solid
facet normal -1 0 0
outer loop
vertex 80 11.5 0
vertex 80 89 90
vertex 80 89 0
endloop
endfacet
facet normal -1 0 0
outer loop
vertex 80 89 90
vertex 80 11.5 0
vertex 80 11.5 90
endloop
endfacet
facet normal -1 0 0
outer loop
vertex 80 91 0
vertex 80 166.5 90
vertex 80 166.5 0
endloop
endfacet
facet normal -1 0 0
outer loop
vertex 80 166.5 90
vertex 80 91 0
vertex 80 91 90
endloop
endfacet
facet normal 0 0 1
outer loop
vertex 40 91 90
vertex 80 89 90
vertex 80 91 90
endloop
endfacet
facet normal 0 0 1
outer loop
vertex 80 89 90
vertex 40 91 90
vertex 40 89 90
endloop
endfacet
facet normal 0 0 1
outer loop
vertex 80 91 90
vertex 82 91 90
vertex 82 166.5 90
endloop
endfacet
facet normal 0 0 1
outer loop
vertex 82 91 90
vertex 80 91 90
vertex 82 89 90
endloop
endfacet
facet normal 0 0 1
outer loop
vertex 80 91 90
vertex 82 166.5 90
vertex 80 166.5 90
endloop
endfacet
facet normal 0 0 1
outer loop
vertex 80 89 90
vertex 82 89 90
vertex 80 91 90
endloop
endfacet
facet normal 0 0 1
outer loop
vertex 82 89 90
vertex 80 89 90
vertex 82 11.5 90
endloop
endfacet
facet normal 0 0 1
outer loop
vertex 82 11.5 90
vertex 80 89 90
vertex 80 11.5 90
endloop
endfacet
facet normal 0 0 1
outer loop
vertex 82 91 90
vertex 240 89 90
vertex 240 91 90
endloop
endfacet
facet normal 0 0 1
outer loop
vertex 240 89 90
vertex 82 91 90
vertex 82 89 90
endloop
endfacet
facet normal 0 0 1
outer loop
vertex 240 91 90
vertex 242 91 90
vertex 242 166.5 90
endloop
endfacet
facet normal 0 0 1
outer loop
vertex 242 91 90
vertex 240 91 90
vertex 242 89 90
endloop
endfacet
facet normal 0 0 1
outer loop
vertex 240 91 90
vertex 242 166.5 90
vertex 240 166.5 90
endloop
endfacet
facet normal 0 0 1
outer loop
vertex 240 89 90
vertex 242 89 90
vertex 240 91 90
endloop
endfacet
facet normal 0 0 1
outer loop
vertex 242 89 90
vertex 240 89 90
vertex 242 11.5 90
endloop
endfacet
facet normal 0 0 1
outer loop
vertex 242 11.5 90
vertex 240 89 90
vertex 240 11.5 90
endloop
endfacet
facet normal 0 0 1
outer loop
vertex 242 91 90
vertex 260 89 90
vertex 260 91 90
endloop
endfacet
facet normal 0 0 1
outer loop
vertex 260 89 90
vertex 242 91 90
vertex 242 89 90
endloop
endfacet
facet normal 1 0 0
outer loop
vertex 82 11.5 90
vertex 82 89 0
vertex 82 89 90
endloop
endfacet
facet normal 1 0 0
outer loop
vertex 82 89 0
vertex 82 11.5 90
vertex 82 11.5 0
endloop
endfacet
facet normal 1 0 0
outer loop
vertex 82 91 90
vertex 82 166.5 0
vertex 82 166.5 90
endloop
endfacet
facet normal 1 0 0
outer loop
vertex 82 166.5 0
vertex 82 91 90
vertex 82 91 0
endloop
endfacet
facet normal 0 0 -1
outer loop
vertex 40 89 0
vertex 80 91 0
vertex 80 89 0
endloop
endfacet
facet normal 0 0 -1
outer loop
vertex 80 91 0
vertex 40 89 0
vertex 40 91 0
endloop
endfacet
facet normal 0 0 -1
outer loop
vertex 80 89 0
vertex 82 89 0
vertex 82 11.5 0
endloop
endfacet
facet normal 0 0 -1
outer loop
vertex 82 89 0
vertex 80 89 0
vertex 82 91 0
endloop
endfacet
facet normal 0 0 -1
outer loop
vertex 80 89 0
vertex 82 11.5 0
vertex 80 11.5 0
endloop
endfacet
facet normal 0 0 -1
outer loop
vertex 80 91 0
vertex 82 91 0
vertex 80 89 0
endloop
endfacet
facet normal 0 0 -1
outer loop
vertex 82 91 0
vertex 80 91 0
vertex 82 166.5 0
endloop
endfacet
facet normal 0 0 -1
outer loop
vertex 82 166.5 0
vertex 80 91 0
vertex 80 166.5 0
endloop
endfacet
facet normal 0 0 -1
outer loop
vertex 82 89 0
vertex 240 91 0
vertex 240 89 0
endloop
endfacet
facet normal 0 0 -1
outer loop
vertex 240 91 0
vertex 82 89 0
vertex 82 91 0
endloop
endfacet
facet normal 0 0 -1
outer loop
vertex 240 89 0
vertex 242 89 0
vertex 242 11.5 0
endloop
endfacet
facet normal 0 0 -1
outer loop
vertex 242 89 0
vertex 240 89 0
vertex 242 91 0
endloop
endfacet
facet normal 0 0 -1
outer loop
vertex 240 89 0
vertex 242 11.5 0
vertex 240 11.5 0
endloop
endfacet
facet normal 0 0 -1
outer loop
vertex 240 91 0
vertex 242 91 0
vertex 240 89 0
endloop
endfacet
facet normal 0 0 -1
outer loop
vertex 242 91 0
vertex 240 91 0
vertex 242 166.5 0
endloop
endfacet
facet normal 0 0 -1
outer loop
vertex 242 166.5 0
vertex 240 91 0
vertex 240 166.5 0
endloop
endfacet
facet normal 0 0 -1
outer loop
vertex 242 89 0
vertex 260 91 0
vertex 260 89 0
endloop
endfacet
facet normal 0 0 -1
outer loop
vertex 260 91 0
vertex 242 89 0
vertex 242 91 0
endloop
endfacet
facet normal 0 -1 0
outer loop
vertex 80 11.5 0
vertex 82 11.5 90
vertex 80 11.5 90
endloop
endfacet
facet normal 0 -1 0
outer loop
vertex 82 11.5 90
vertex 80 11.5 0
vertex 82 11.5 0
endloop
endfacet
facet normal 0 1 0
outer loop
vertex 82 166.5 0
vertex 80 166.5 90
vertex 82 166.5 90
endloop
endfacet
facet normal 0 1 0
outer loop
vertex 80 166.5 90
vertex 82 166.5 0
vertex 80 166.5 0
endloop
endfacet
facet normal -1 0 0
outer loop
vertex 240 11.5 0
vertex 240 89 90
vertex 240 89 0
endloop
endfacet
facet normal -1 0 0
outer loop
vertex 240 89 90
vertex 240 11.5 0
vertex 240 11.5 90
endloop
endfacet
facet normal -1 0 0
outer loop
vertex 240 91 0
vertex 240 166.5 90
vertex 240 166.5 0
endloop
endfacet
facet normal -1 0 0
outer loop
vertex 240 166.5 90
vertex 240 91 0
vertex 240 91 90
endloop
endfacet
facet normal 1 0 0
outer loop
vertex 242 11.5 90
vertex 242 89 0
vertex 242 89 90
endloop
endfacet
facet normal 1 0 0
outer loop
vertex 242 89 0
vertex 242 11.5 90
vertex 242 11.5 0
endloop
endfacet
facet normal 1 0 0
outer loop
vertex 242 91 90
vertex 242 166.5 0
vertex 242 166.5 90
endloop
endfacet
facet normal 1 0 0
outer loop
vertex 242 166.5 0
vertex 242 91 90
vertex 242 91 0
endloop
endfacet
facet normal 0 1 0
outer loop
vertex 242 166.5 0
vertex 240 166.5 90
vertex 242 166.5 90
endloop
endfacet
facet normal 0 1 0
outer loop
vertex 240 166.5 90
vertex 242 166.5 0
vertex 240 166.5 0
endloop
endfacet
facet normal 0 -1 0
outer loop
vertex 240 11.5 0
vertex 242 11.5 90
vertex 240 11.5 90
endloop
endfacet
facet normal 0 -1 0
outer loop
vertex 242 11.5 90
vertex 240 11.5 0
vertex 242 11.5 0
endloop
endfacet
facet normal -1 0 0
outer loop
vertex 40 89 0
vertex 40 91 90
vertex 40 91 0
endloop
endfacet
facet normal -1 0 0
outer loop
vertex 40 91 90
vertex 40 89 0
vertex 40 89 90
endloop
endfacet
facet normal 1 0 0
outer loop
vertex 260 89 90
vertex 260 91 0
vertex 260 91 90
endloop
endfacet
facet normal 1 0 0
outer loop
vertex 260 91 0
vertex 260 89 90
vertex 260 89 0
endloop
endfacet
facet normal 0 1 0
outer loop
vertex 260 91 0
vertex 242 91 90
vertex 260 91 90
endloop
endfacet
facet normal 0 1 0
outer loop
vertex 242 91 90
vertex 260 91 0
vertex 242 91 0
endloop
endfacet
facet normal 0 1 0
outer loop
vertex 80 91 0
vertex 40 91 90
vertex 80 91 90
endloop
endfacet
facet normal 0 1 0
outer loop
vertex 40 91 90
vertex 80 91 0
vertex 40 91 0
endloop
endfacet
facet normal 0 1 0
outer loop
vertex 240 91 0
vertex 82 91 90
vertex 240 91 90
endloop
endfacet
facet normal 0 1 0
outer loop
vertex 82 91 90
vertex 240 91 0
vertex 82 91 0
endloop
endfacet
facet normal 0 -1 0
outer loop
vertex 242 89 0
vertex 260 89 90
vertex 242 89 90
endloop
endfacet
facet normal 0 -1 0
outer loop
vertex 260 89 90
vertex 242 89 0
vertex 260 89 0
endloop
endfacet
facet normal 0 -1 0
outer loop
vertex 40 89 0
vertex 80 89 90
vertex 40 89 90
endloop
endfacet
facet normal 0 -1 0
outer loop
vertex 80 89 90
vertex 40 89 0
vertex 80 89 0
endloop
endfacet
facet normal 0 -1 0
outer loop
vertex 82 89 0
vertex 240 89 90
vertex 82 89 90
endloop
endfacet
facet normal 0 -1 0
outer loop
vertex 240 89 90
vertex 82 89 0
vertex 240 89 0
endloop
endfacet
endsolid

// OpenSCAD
// file: ../common/library_line.scad
// 라이브러리, 검증된 것만 이곳에
include	<constants.scad>

module line_type_1(start, end, r1, r2) {
	r22 = is_undef(r2) ? r1 : r2;
    hull() {
        translate(start) sphere(r1, $fn = FN);
        translate(end) sphere(r22, $fn = FN);
    }

	dx = end.x - start.x;
	dy = end.y - start.y;
	dz = end.z - start.z;
	rx = dy == 0 ? 0 : atan(dz / dy);
	ry = dz == 0 ? 0 : 90 + atan(dx / dz);
	rz = dx == 0 ? 0 : atan(dy / dx);
	d = sqrt(dx * dx + dy * dy + dz * dz);
	fs = max(0.5, min(d / 32, 20));
	translate([(start.x + end.x) / 2 + max(r1, r22), (start.y + end.y) / 2 + max(r1, r22), (start.z + end.z) / 2 + max(r1, r22)])
		rotate([rx, ry, rz])
		linear_extrude(EPSILON, center = true)	text(str(d, " mm"), size = fs, halign = "center", language = "kr", font = "NanumGothic");
}
// file: ../common/library_cube.scad
// 라이브러리, 검증된 것만 이곳에
include	<constants.scad>
use <library_text.scad>
use <library_line.scad>

//	튜브형태의 네모 박스, 사방 벽면만 있는 형태
//	size: 외경
module box_type_1(size, thick) {
	cube([size[0], thick, size[2]]);	//	앞
	translate([0, size[1] - thick, 0])	cube([size[0], thick, size[2]]);	//	뒤

	translate([0, 0, 0])	cube([thick, size[1], size[2]]);	//	왼쪽
	translate([size[0] - thick, 0, 0])	cube([thick, size[1], size[2]]);	//	오른쪽
}

// 끝에 반구가 더달린 실린더형태의 3차원 라인
// 대칭 사다리꼴, xz 평면에서 보았을 때
module cube_type_1(v, x) {
	rotate([0, -90, -90])
	linear_extrude(v.y)
	polygon([
		[0,		0],
		[0,		v.x],
		[v.z,	v.x - (v.x - x) / 2],
		[v.z,	(v.x - x) / 2],
		[0,		0]
	]);
}

// 한쪽으로만(x축 방향으로만) 늘어나는(또는 줄어드는) 사다리꼴-하나는 직각 유지, xz 평면에서 보았을 때
module cube_type_2(v, x) {
	rotate([0, -90, -90])
	linear_extrude(v.y)
	polygon([
		[0,		0],
		[0,		v.x],
		[v.z,	x],
		[v.z,	0],
		[0,		0]
	]);
}

// 벡터들을 이용하여 꼭지점을 직각으로만 연결하는 육면체
module cube_type_3(vectors, radious) {
	// 아래쪽
	line_type_1(vectors[0], vectors[1], radious);
	line_type_1(vectors[1], vectors[2], radious);
	line_type_1(vectors[2], vectors[3], radious);
	line_type_1(vectors[3], vectors[0], radious);

	// 위쪽
	line_type_1(vectors[4], vectors[5], radious);
	line_type_1(vectors[5], vectors[6], radious);
	line_type_1(vectors[6], vectors[7], radious);
	line_type_1(vectors[7], vectors[4], radious);
	
	// 기둥
	line_type_1(vectors[0], vectors[4], radious);
	line_type_1(vectors[1], vectors[5], radious);
	line_type_1(vectors[2], vectors[6], radious);
	line_type_1(vectors[3], vectors[7], radious);
}

// x 축으로의 모서리의 일부 각을 제거한 것
module cube_type_4(v, c) {
	r = is_undef(c) ? min(v.y, v.z) / 16 : c;
	stiffen = r * sqrt(2);

	translate([0, r, 0])		cube(v - [0, r * 2, 0]);
	translate([0, 0, r])		cube(v - [0, 0, r * 2]);
	translate([0, r, 0])				rotate([45, 0, 0])	cube([v.x, r, r]);
	translate([0, r, v.z - r * 2])		rotate([45, 0, 0])	cube([v.x, stiffen, stiffen]);
	translate([0, v.y - r, v.z - r * 2])		rotate([45, 0, 0])	cube([v.x, stiffen, stiffen]);
	translate([0, v.y - r, 0])		rotate([45, 0, 0])	cube([v.x, stiffen, stiffen]);
}

// xy평면에 격자 모형, 45도
module cube_type_5(size, wall) {
	intersection() {
		cube(size);
		for(cx = [0: wall * 4: size.x + size.y]) {
			translate([cx, - wall * sqrt(2), 0])	rotate([0, 0, 45])	cube([wall, size.y * 2, size.z]);
			translate([cx - size.y, - wall * sqrt(2), 0])	rotate([0, 0, -45])	cube([wall, size.y * 2, size.z]);
		}
	}
}

module cube_types() {
	//	cube_type_1
	color("white", 1.0)	cube_type_1([16, 32, 4], 12);
	note_type_1([16, 32, 4], [12, 32, 4]);
	translate([4, 24, 4])	text("cube_type_1", size = 1);
	translate([4, 22, 4])	text("[16, 32, 4], 12", size = 1);
	translate([4, 20, 4])	text("note_type_1", size = 1);
	x1 = 16 + 4;
	
	//	cube_type_2
	translate([x1, 0, 0]) {
		color("yellow", 1.0)	cube_type_2([16, 32, 4], 20);
		note_type_1([16, 32, 4], [12, 32, 4]);
		translate([4, 24, 4])	text("cube_type_2", size = 1);
		translate([4, 22, 4])	text("[16, 32, 4], 20", size = 1);
	}
	x2 = x1 + 16 + 4;

	//	box_type_1: 튜브형태의 네모 박스, 사방 벽면만 있는 형태
	translate([x2, 8, 0])
	{
		color("blue", 0.5)	box_type_1([8, 16, 32], 2);
		color("white", 0.5)	note_type_1([8, 16, 32]);
		translate([-4, -2, 0])	text("box_type_1([8, 16, 32], 2)", size = 1);
	}
	x5 = x2 + 24;

	// cube_type_3: 벡터들을 이용하여 꼭지점을 직각으로만 연결하는 육면체
	translate([x5, 8, 8])
	{
		x = 4;
		y = 8;
		z = 16;
		r = 1;
		v = [
			[0, 0, 0],
			[x, 0, 0],
			[x, y, 0],
			[0, y, 0],
			[0, 0, z],
			[x, 0, z],
			[x, y, z],
			[0, y, z]
		];
		cube_type_3(v, r);
		color("white", 1.0)	
		translate([-r, -r, -r])	note_type_1([x, y, z] + [r * 2, r * 2, r * 2]);
		translate([0, -4, 0])	text("cube_type_3(v, 1)", size = 1);
	}
	x7 = x5 + 16;

	//	cube_type_1
	translate([x7, 64, 0])
	{
		color("white", 1.0)	cube_type_1([16, 32, 4], 12);
		//	module note_type_2(name, vs, ve, centered = false, fs, detail = false) {
		note_type_2("note_type_2", [16, 32, 4], [12, 32, 4], false, undef, true);
	}
	x12 = x7 + 16 + 4;

	//	cube_type_4
	translate([x12, 64, 0])
	{
		cube_type_4([16, 4, 8]);
		note_type_2("cube_type_4([16, 4, 8])", [16, 4, 8]);
	}
	x14 = x12 + 24;

	//	cube_type_5
	translate([x14, 64, 0])
	{
		cube_type_5([32, 64, 2], 2);
		note_type_2("cube_type_5([32, 64, 2], 2)", [32, 64, 2]);
	}
	x15 = x14 + 24;

}
cube_types();
// file: ../common/library_function.scad
// 라이브러리, 검증된 것만 이곳에
use <MCAD/boxes.scad>
include	<constants.scad>


// map에서 못찾으면 default에서 찾는다
function get(map, key, default) = let(
	result = search([key], map, 1, 0),
	spare = search([key], default, 1, 0)
)	is_num(result[0])
		? map[result[0]][1] 
		: is_num(spare[0]) ? default[spare[0]][1] : assert(false) "";

function linecount(string) = len(split(string, "\n")) + 1;

// 문자열 일부 추출: start부터 end까지의 문자 반환
function substring(string, start, end, index = 0, result = "") =
    index >= len(string) || index > end
        ? result
        : substring(string, start, end,
            index + 1,
            str(result, (index >= start ? string[index] : ""))
        );

// 문자열 일부 추출: start부터 end까지의 문자 반환
function split(string, delemeter) = let(parts = concat(-1, search(delemeter, string, 0)[0], len(string))) [
	for (cx = [0:len(parts) - 2])
		substring(string, parts[cx] + 1, parts[cx + 1] - 1)
];

// 적정한 fn 값
function fnRound(radious) = $preview ? FN : floor(2 * PI * radious / 0.4) - floor(2 * PI * radious / 0.4) % 4;
//function fnRound(radious) = 2 * PI * radious / 0.4;

// z축 0로로
function set_z(v, z) = [v.x, v.y, z];

// 벡터 회전 계산
function rotate_vector(angle, vector) = rotatez_vector(angle[2], rotatey_vector(angle[1], rotatex_vector(angle[0], vector)));
// x축 기준 회전 벡터 회전 계산
function rotatex_vector(anglex, vector) = [
	vector[0],
	-vector[2] * sin(anglex) + vector[1] * cos(anglex),
	vector[2] * cos(anglex) + vector[1] * sin(anglex)
];
// y축 기준 회전 벡터 회전 계산
function rotatey_vector(angley, vector) = [
	vector[0] * cos(angley) + vector[2] * sin(angley),
	vector[1],
	-vector[0] * sin(angley) + vector[2] * cos(angley)
];

// z축 기준 회전 벡터 회전 계산
function rotatez_vector(anglez, vector) = [
	-vector[1] * sin(anglez) + vector[0] * cos(anglez),
	vector[1] * cos(anglez) + vector[0] * sin(anglez),
	vector[2]
];

//	숫자, 소수점 이하 몇자리
function strfix(number, count) =
	chr([for (cx = [0:
		len(search(".", str(number))) == 0
			? len(str(number)) - 1
			: (search(".", str(number))[0] + count) >= len(str(number))
				? len(str(number)) - 1
				: (search(".", str(number))[0] + count)
	]) ord(str(number)[cx])])
;

//	육면체에서 꼭지점들을 벡터로
function	vectors_from_cube(size) = [
	[0,			0,		0],
	[size.x,	0,		0],
	[size.x,	size.y,	0],
	[0,			size.y,	0],

	[0,			0,		size.z],
	[size.x,	0,		size.z],
	[size.x,	size.y,	size.z],
	[0,			size.y,	size.z]
];
// file: ../common/library.scad
// 라이브러리, 검증된 것만 이곳에
use <MCAD/boxes.scad>
include	<constants.scad>
use <library_function.scad>
use <library_text.scad>
use <library_cube.scad>
use <utils.scad>

/*
	모듈 섹션
*/
// 상하 모서리의 일부 각을 제거한 것
module cylinder_type_1(height, radious, cut) {
	fn = fnRound(radious);
	translate([0, 0, 0])			cylinder(cut,				radious - cut,	radious,		$fn = fn);
	translate([0, 0, cut])			cylinder(height - cut * 2,	radious,		radious,		$fn = fn);
	translate([0, 0, height - cut])	cylinder(cut,				radious,		radious - cut,	$fn = fn);
}

module line_type_1(start, end, r1, r2) {
	r22 = is_undef(r2) ? r1 : r2;
    hull() {
        translate(start) sphere(r1, $fn = FN);
        translate(end) sphere(r22, $fn = FN);
    }

	dx = end.x - start.x;
	dy = end.y - start.y;
	dz = end.z - start.z;
	rx = dy == 0 ? 0 : atan(dz / dy);
	ry = dz == 0 ? 0 : 90 + atan(dx / dz);
	rz = dx == 0 ? 0 : atan(dy / dx);
	d = sqrt(dx * dx + dy * dy + dz * dz);
	fs = max(0.5, min(d / 32, 20));
	%translate([(start.x + end.x) / 2 + max(r1, r22), (start.y + end.y) / 2 + max(r1, r22), (start.z + end.z) / 2 + max(r1, r22)])
		rotate([rx, ry, rz])
		linear_extrude(EPSILON, center = true)	text(str(d, " mm"), size = fs, halign = "center", language = "kr", font = "NanumGothic");
}

// 밑둥이 잘린 구
module sphere_type_1(r) {
	translate([r, r, r / 2])
	difference() {
		sphere(r, $fn = FN);
		translate([-r * 1.5, -r * 1.5, -r * 4 + r / 2])	cube(r * 3);
	}
}

/*
	홈파기, 트리머
*/
//	외경계산결과, r: 반지름, delta: 한쪽 여유
function trimmer_type_1_height(r, delta, y, z) =
	z	+ sqrt((r + delta) * (r + delta) - (r - delta) * (r - delta))
		+ sqrt((r + delta) * (r + delta) - ((r + delta) * sin(OVERHANG_THRESHOLD)) * ((r + delta) * sin(OVERHANG_THRESHOLD)))
		+ ((r + delta) * sin(OVERHANG_THRESHOLD)) * sin(OVERHANG_THRESHOLD)
;
module trimmer_type_1(r, delta, y, z) {
	r2 = r * 2;			//	지름
	delta2 = delta * 2;	//	양쪽 여유 합
	rplus = r + delta;
	rminus = r - delta;

	// 진입로
	cube_type_1([rplus * 2, y, z], rminus * 2);
	// 정착
	translate([rplus, 0, z + sqrt(rplus * rplus - rminus * rminus)])
		rotate([-90, 0, 0])
		cylinder(y, rplus, rplus, $fn = fnRound(rplus));
	// 오버행 제거
	let (
		x = rplus * sin(OVERHANG_THRESHOLD),
		z_start = z + sqrt(rplus * rplus - rminus * rminus) + sqrt(rplus * rplus - x * x),
	
		reserved = 0
	) {
		translate([rplus - x, 0, z_start])
			cube_type_1([x * 2, y, x * sin(OVERHANG_THRESHOLD)], 0);

		note_type_1([rplus * 2, y, z_start + x * sin(OVERHANG_THRESHOLD)]);
	}
}

module joint_female_type_1(radius, angles, radius1) {
	#sphere(radius);
	r1 = is_undef(radius1) ? radius / 4 : radius1;
	for (cx = [0:len(angles) - 1]) {
		distance = sqrt(angles[cx].x * angles[cx].x + angles[cx].y * angles[cx].y + angles[cx].z * angles[cx].z);
		start = [
			angles[cx].x / distance * r1 * 1.5,
			angles[cx].y / distance * r1 * 1.5,
			angles[cx].z / distance * r1 * 1.5
		];
		end = [
			angles[cx].x / distance * radius,
			angles[cx].y / distance * radius,
			angles[cx].z / distance * radius
		];
		line_type_1(start, end, r1);
	}
}


// 타원통
module ellipsis(x, y, z) {
	translate([x / 2, y / 2, 0])
		resize([x, y, z])
			cylinder(1, 1, 1, $fn = FN);
}

// 검은색 나사못을 박을 자리를 위한 주물, ref) https://github.com/andold/resource3d/blob/main/README.md
module casting_black_25(y, legend = false) {
	translate([0, 0, -8])
		cylinder(8, 7.9 / 2, 7.9 / 2, $fn = fnRound(4));
//	color("Lavender", 0.5)
	{
		cylinder(3, 7.9 / 2, 3.8 / 2, $fn = fnRound(4));
		translate([0, 0, 3])	cylinder(y, 3.8 / 2, 3.8 / 2, $fn = fnRound(2));
		translate([0, 0, 3 + y])	cylinder(25 - 3 - y, 3.4 / 2, 3.4 / 2, $fn = fnRound(2));
	}
	%if (legend) {
		translate([0, -5, -2])	rotate([90, 0, 0])	text("extra for space", 1, halign="center");
		translate([0, -5, 1])	rotate([90, 0, 0])	text("7.9 mm", 1, halign="center");
		translate([0, -3, 8])	rotate([90, 0, 0])	text("3.8 mm", 1, halign="center");
		translate([0, -3, 24])	rotate([90, 0, 0])	text("3.4 mm", 1, halign="center");

		translate([5, 4, 1])	rotate([90, 90, 0])	text("3.0 mm", 1, halign="center");
		translate([2, 2, 6])	rotate([90, 90, 0])	text(str(y, " mm"), 1, halign="center");
		translate([2, 1.5, 20])	rotate([90, 90, 0])	text(str(25 - 3 - y, " mm"), 1, halign="center");
	}
}

module samples() {
	//	cube_type_1
	color("white", 1.0)	cube_type_1([16, 32, 4], 12);
	note_type_1([16, 32, 4], [12, 32, 4]);
	translate([4, 24, 4])	text("cube_type_1", size = 1);
	translate([4, 22, 4])	text("[16, 32, 4], 12", size = 1);
	translate([4, 20, 4])	text("note_type_1", size = 1);
	x1 = 16 + 4;
	
	//	cube_type_2
	translate([x1, 0, 0]) {
		color("yellow", 1.0)	cube_type_2([16, 32, 4], 20);
		note_type_1([16, 32, 4], [12, 32, 4]);
		translate([4, 24, 4])	text("cube_type_2", size = 1);
		translate([4, 22, 4])	text("[16, 32, 4], 20", size = 1);
	}
	x2 = x1 + 16 + 4;

	//	sphere_type_1
	color("green", 1.0)	
	translate([x2, 8, 0])
	{
		sphere_type_1(8);
		note_type_1([16, 16, 12], [16, 16, 12]);
		translate([4, -4, 0])	text("sphere_type_1(8)", size = 1);
	}
	x3 = x2 + 16 + 4;

	// cylinder_type_1 끝이 구인 실린더
	color("pink", 1.0)
	{
		line_type_1([x3, 16, 0], [x3 + 2, 16, 32], 4, 2);
		translate([68, 16, 0])
		{
			translate([0, 0, 16])	note_type_1([8, 8, 32], [4, 4, 32], true);
			translate([-8, -12, 0])	text("line_type_1([68, 16, 0], [70, 16, 32], 4, 2)", size = 1);
		}
	}
	x4 = x3 + 32;

	//	box_type_1: 튜브형태의 네모 박스, 사방 벽면만 있는 형태
	translate([x4, 8, 0])
	{
		color("blue", 0.5)	box_type_1([8, 16, 32], 2);
		color("white", 0.5)	note_type_1([8, 16, 32]);
		translate([-4, -2, 0])	text("box_type_1([8, 16, 32], 2)", size = 1);
	}
	x5 = x4 + 24;

	//	joint_female_type_1
	translate([x5, 8, 8])
	{
		joint_female_type_1(4, [[1, 0, 0], [-1, 0, 0], [0, 1, 0], [0, -1, 0], [0, 0, 1], [1, 1, 1]]);
		color("white", 1.0)	
		note_type_1([8, 8, 8], [8, 8, 8], true);
		translate([-8, -10, 0])	text("joint_female_type_1(4, [[1, 0, 0], ...[1, 1, 1]]", size = 1);
	}
	x6 = x5 + 24;

	// cube_type_3: 벡터들을 이용하여 꼭지점을 직각으로만 연결하는 육면체
	translate([x6, 8, 8])
	{
		x = 4;
		y = 8;
		z = 16;
		r = 1;
		v = [
			[0, 0, 0],
			[x, 0, 0],
			[x, y, 0],
			[0, y, 0],
			[0, 0, z],
			[x, 0, z],
			[x, y, z],
			[0, y, z]
		];
		cube_type_3(v, r);
		color("white", 1.0)	
		translate([-r, -r, -r])	note_type_1([x, y, z] + [r * 2, r * 2, r * 2]);
		translate([0, -4, 0])	text("cube_type_3(v, 1)", size = 1);
	}
	x7 = x6 + 16;

	// ellipsis: 타원통
	translate([x7, 8, 8])
	{
		color("green", 1.0)	
		ellipsis(8, 4, 16);
		color("white", 1.0)	
		note_type_1([8, 4, 16]);
		translate([0, -4, 0])	text("ellipsis(8, 4, 16)", size = 1);
	}

// 검은색 나사못을 박을 자리를 위한 주물, ref) https://github.com/andold/resource3d/blob/main/README.md
	translate([0, 64, 0])
	{
		casting_black_25(8, true);
		translate([-4, -8, 0])	text("casting_black_25(8)", size = 1);
	}
	x11 = 16 + 4;

	//	cube_type_1
	translate([x11, 64, 0])
	{
		color("white", 1.0)	cube_type_1([16, 32, 4], 12);
		//	module note_type_2(name, vs, ve, centered = false, fs, detail = false) {
		note_type_2("note_type_2", [16, 32, 4], [12, 32, 4], false, undef, true);
	}
	x12 = x11 + 16 + 4;

	translate([x12, 64, 0])
	line_type_1([0, 0, 0], [4, 8, 12], 1);
	x13 = x12 + 24;
	
	translate([x13, 64, 0])
	{
		cube_type_4([16, 4, 8]);
		note_type_2("cube_type_4([16, 4, 8])", [16, 4, 8]);
	}
	x14 = x13 + 24;

	translate([x14, 64, 0])
	{
		cylinder_type_1(8, 4, 1);
		note_type_2("cylinder_type_1(8, 4, 1)", [8, 8, 8], [8, 8, 8], true, undef, true);
	}
	x15 = x14 + 24;

	translate([x15, 64, 0])
	{
		trimmer_type_1(4, MINIMUM, 32, 4);
		translate([-8, -4, 0])	rotate([0, 0, 0])	text("trimmer_type_1(4, MINIMUM, 32, 4)", size = 1);
	}
}
samples();
// file: ../common/constants.scad
// 상수들 정의
// include 사용하시오
MAX = [220, 220, 250];
ZERO = [0, 0, 0];
HALF = [1/2, 1/2, 1/2];
ONE = [1, 1, 1];
BIG = [1024, 1024, 1024];
EPSILON = 0.01;
EPSILON2 = EPSILON * 2;
MINIMUM = 0.1;	//	0.1mm
NOZZLE = 0.4;	//	노즐 지름
OVERHANG_THRESHOLD = 30;

FN = $preview ? 16 : 360;

//	자원들
RADIUS_HOLE_NUT_25 = 3.4 / 2;	//	검은색 25mm 나사 너트 구멍 반지름
// main file
/*
	냉장고 칸막이
- 내경 기준
- 높이: 90 mm
- 깊이: 155 mm
- 앞판 두께: 11.5+ mm
*/
include	<../common/constants.scad>
use <../common/library.scad>

MEASURE = [
	155,	//	내경 기준 깊이
	90,		//	높이
	11.5,	//	앞판 두께
	0		//	reserved
];
DEFINE = [
	2,		//	두께
	160,	//	간격
	16,		//	가로 묶음 높이, 대들보 위치
	0		//	reserved
];

module container() {
	y = 300;
	z = 300;
	translate([-EPSILON, 0, 0])		cube([EPSILON,					y + MEASURE[2],	z]);
	translate([0, 0, -EPSILON])		cube([MEASURE[0] + MEASURE[2],	y,				EPSILON]);
	translate([0, 0, 0])			cube([MEASURE[0] + MEASURE[2],	MEASURE[2],		MEASURE[1]]);
	translate([0, y, 0])			cube([MEASURE[0] + MEASURE[2],	MEASURE[2],		MEASURE[1]]);
	translate([MEASURE[0], 0, 0])	cube([MEASURE[2],				y,				MEASURE[1]]);
}
module fridge(type) {
	%translate([0, MEASURE[0] + MEASURE[2], 0])	rotate([0, 0, -90])	container();

	translate([DEFINE[1] / 2, MEASURE[2], 0])
	{
		//	칸막이
		cube([DEFINE[0], MEASURE[0], MEASURE[1]]);
		translate([DEFINE[1], 0, 0])		cube([DEFINE[0], MEASURE[0], MEASURE[1]]);
		//	칸막이 반으로 나누기
		translate([-DEFINE[1] / 4, MEASURE[0] / 2, 0])		cube([220, DEFINE[0], MEASURE[1]]);
	}
}

target = 0;
fridge(target);
/*
# in HOME(project root, ie. .../resouce3d)
C:\apps\openscad-2021.01\openscad.exe -o C:\src\eclipse-workspace\resource3d\stl\fridge.stl -D target=0 --export-format asciistl C:\src\eclipse-workspace\resource3d\fasten\fridge.scad
*/
